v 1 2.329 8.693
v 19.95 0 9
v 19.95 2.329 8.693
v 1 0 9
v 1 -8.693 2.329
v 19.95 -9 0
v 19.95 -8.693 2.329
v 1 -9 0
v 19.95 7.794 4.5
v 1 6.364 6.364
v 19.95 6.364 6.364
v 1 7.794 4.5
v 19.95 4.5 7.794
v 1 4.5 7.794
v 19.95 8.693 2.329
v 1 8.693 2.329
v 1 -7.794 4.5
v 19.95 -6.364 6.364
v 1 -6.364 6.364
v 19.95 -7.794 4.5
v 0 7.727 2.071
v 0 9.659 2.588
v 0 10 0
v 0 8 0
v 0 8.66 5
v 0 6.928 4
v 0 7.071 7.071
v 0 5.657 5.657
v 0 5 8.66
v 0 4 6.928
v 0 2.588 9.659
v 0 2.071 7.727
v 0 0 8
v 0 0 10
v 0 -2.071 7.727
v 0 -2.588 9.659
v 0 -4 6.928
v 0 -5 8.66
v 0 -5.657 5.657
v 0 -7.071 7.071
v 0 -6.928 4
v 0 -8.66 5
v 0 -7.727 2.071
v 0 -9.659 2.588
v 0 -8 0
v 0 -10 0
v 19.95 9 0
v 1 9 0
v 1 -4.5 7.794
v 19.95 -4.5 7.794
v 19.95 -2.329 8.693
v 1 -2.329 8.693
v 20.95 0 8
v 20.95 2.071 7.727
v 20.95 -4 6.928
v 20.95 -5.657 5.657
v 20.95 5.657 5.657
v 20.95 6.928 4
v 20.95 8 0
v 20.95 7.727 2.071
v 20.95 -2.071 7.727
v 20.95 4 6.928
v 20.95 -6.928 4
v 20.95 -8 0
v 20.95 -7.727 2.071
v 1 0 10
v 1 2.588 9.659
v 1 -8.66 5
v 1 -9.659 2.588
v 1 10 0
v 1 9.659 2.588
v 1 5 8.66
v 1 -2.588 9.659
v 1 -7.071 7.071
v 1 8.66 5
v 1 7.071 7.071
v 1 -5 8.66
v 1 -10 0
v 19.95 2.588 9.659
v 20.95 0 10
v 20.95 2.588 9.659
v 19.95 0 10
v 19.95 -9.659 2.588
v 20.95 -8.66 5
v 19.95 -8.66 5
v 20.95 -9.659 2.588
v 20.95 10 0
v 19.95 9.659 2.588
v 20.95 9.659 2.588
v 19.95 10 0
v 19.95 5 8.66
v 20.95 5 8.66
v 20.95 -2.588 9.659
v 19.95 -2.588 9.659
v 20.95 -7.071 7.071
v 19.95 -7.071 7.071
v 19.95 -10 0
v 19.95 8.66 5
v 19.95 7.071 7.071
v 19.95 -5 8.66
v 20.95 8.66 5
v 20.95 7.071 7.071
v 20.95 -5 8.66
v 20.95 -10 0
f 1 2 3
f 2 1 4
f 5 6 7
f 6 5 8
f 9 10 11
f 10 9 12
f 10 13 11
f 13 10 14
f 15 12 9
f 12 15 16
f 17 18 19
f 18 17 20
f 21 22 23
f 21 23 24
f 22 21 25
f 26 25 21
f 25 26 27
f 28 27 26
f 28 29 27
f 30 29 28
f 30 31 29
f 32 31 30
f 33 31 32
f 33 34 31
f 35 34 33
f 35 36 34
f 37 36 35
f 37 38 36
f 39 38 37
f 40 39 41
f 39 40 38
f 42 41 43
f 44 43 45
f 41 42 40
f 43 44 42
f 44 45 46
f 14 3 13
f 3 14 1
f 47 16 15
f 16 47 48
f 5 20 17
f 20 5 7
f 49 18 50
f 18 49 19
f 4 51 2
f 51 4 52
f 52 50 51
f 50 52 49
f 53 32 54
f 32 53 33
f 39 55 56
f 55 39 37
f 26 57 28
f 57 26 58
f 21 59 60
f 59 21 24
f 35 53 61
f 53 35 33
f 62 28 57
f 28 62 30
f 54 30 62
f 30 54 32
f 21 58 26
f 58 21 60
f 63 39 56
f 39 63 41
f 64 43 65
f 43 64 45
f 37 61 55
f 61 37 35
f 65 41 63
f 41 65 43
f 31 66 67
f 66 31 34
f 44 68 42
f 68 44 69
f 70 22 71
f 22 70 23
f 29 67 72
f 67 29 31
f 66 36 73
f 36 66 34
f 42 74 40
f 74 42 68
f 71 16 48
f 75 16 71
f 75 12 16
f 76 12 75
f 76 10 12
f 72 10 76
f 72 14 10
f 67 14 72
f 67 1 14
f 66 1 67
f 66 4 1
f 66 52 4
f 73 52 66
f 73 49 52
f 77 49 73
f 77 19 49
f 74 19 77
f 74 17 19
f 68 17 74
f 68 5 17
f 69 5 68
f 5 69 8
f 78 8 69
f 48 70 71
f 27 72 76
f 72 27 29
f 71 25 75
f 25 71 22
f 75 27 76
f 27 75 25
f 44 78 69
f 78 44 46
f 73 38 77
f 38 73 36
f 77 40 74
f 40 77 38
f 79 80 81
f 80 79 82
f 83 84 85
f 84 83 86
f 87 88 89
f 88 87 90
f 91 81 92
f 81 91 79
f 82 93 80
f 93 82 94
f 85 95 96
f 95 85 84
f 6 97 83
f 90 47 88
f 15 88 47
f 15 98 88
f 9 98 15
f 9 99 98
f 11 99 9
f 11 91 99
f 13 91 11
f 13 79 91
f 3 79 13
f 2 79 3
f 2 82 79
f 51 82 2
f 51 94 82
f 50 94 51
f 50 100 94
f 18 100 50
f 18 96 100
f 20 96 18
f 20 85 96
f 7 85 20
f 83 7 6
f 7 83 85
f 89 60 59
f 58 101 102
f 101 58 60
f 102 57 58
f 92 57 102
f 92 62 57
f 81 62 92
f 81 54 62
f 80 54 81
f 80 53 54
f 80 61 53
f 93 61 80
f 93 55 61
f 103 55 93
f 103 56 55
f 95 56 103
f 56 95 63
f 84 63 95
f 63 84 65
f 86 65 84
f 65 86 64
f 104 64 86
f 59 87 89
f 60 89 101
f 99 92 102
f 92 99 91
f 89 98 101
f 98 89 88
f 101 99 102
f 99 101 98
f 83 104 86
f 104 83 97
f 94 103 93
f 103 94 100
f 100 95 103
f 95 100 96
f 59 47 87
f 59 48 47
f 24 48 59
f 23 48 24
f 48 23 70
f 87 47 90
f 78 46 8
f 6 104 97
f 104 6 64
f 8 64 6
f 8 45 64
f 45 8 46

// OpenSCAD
// file: ../build_environments.scad
// build_environments.scad: modules to build level sections
//

module pool(diameter=10.0, wall_height=2.0, step_width=3.0, connections=[])
{
    difference() {
        union() {
        difference() {
            cylinder(h=0.5,r1=diameter+step_width,r2=diameter+step_width,$fn=48);
            translate([0,0,-0.1])
                cylinder(h=0.7,r1=diameter,r2=diameter,$fn=48);
        }
        difference() {
            cylinder(h=wall_height,r1=diameter+step_width+1.0,r2=diameter+step_width+1.0,$fn=48);
            translate([0,0,-0.1])
                cylinder(h=wall_height+0.2,r1=diameter+step_width,r2=diameter+step_width,$fn=48);
        }
        }
    
        for (c = connections)
        {
            rotate([0,90,0]) {
                angle = atan2(c[1],c[0]);
                rotate([-angle,0,0]) {
                    cylinder(h=diameter+5.0,r1=c[2],r2=c[2],$fn=48);
                }
            }
        }
    }
}

module straight(length=10.0, width=2.0, dy1=0.0, dy2=0.0, dz=0.0)
{
    dims = [0, 0, 0, 0, 0, (dz/length)];
    matrix = [
        [ 1, dims[0], dims[1], 0 ],
        [ dims[2], 1, dims[4], 0 ],
        [ dims[5], dims[3], 1, 0 ],
        [ 0, 0, 0, 1 ]
    ];
    multmatrix(matrix)
    difference() {
        translate([dy1,0,0])
        union() {
            rotate([0,90,0]) {
                difference() {
                    cylinder(h=(length-dy1-dy2),r1=width+1.0,r2=width+1.0,$fn=24);
                    translate([0,0,-0.1])
                        cylinder(h=(length-dy1-dy2+0.2),r1=width,r2=width,$fn=24);
                }
                difference() {
                    cylinder(h=1.0,r1=width+2.0,r2=width+2.0,$fn=24);
                    translate([0,0,-0.1])
                        cylinder(h=1.2,r1=width,r2=width,$fn=24);
                }
                translate([0,0,(length-dy1-dy2)-1.0]) {
                    difference() {
                        cylinder(h=1.0,r1=width+2.0,r2=width+2.0,$fn=24);
                        translate([0,0,-0.1])
                            cylinder(h=1.2,r1=width,r2=width,$fn=24);
                    }
                }
            }
        }
        translate([0,0,-(2*width+4.0)/2])
            cube([3*length,3*length,2*width+4.0],center=true);
    }
}

module curve(p0=[0,0], center=[0,0], dir=1, angle=0.0, width=2.0)
{
    radius = sqrt((p0[0]-center[0])*(p0[0]-center[0]) + (p0[1]-center[1])*(p0[1]-center[1]));
    if (dir == 0) {
        difference() {
            rotate([0,0,-90])
            difference() {
                rotate_extrude(angle = angle, convexity = 10, $fn=32)
                    translate([radius, 0, 0])
                        circle(r = width+1.0,$fn=24);
                rotate([0,0,-1.0])
                    rotate_extrude(angle = angle+2.0, convexity = 10, $fn=32)
                        translate([radius, 0, 0])
                            circle(r = width,$fn=24);
            }
            translate([0,0,-(2*width+4.0)/2])
                cube([5*radius,5*radius,2*width+4.0],center=true);
        }
    }
    else {
        difference() {
            rotate([0,0,90])
            difference() {
                rotate_extrude(angle = -angle, convexity = 10, $fn=32)
                    translate([radius, 0, 0])
                        circle(r = width+1.0,$fn=24);
                rotate([0,0,1.0])
                    rotate_extrude(angle = -angle-2.0, convexity = 10, $fn=32)
                        translate([radius, 0, 0])
                            circle(r = width,$fn=24);
            }
            translate([0,0,-(2*width+4.0)/2])
                cube([5*radius,5*radius,2*width+4.0],center=true);
        }
    }

}

// test pool
//pool(diameter=12.0000, wall_height=3.0000, step_width=3.0000, connections=[[0.0000,-26.0000,2.0000], [23.6074,0.0000,2.0000]]);

// test straight, slope
//straight(length=26.0000, width=2.0000, dy1=11.8322, dy2=6.7082, dz=0.0000);
//straight(length=29.1549, width=12.0000, dy1=0.0000, dy2=0.0000, dz=-15.0000);

// test curve
//curve(p0=[23.6074, 0.0000], center=[23.6074, 5.0000], dir=0, angle=60.1011, width=2.0000);
//curve(p0=[33.6426, 12.4219], center=[37.9771, 9.9295], dir=1, angle=120.4627, width=2.0000);
// main file
use <../build_environments.scad>;
straight(length=20.9503, width=8.0000, dy1=0.0000, dy2=0.0000, dz=0.0000);
